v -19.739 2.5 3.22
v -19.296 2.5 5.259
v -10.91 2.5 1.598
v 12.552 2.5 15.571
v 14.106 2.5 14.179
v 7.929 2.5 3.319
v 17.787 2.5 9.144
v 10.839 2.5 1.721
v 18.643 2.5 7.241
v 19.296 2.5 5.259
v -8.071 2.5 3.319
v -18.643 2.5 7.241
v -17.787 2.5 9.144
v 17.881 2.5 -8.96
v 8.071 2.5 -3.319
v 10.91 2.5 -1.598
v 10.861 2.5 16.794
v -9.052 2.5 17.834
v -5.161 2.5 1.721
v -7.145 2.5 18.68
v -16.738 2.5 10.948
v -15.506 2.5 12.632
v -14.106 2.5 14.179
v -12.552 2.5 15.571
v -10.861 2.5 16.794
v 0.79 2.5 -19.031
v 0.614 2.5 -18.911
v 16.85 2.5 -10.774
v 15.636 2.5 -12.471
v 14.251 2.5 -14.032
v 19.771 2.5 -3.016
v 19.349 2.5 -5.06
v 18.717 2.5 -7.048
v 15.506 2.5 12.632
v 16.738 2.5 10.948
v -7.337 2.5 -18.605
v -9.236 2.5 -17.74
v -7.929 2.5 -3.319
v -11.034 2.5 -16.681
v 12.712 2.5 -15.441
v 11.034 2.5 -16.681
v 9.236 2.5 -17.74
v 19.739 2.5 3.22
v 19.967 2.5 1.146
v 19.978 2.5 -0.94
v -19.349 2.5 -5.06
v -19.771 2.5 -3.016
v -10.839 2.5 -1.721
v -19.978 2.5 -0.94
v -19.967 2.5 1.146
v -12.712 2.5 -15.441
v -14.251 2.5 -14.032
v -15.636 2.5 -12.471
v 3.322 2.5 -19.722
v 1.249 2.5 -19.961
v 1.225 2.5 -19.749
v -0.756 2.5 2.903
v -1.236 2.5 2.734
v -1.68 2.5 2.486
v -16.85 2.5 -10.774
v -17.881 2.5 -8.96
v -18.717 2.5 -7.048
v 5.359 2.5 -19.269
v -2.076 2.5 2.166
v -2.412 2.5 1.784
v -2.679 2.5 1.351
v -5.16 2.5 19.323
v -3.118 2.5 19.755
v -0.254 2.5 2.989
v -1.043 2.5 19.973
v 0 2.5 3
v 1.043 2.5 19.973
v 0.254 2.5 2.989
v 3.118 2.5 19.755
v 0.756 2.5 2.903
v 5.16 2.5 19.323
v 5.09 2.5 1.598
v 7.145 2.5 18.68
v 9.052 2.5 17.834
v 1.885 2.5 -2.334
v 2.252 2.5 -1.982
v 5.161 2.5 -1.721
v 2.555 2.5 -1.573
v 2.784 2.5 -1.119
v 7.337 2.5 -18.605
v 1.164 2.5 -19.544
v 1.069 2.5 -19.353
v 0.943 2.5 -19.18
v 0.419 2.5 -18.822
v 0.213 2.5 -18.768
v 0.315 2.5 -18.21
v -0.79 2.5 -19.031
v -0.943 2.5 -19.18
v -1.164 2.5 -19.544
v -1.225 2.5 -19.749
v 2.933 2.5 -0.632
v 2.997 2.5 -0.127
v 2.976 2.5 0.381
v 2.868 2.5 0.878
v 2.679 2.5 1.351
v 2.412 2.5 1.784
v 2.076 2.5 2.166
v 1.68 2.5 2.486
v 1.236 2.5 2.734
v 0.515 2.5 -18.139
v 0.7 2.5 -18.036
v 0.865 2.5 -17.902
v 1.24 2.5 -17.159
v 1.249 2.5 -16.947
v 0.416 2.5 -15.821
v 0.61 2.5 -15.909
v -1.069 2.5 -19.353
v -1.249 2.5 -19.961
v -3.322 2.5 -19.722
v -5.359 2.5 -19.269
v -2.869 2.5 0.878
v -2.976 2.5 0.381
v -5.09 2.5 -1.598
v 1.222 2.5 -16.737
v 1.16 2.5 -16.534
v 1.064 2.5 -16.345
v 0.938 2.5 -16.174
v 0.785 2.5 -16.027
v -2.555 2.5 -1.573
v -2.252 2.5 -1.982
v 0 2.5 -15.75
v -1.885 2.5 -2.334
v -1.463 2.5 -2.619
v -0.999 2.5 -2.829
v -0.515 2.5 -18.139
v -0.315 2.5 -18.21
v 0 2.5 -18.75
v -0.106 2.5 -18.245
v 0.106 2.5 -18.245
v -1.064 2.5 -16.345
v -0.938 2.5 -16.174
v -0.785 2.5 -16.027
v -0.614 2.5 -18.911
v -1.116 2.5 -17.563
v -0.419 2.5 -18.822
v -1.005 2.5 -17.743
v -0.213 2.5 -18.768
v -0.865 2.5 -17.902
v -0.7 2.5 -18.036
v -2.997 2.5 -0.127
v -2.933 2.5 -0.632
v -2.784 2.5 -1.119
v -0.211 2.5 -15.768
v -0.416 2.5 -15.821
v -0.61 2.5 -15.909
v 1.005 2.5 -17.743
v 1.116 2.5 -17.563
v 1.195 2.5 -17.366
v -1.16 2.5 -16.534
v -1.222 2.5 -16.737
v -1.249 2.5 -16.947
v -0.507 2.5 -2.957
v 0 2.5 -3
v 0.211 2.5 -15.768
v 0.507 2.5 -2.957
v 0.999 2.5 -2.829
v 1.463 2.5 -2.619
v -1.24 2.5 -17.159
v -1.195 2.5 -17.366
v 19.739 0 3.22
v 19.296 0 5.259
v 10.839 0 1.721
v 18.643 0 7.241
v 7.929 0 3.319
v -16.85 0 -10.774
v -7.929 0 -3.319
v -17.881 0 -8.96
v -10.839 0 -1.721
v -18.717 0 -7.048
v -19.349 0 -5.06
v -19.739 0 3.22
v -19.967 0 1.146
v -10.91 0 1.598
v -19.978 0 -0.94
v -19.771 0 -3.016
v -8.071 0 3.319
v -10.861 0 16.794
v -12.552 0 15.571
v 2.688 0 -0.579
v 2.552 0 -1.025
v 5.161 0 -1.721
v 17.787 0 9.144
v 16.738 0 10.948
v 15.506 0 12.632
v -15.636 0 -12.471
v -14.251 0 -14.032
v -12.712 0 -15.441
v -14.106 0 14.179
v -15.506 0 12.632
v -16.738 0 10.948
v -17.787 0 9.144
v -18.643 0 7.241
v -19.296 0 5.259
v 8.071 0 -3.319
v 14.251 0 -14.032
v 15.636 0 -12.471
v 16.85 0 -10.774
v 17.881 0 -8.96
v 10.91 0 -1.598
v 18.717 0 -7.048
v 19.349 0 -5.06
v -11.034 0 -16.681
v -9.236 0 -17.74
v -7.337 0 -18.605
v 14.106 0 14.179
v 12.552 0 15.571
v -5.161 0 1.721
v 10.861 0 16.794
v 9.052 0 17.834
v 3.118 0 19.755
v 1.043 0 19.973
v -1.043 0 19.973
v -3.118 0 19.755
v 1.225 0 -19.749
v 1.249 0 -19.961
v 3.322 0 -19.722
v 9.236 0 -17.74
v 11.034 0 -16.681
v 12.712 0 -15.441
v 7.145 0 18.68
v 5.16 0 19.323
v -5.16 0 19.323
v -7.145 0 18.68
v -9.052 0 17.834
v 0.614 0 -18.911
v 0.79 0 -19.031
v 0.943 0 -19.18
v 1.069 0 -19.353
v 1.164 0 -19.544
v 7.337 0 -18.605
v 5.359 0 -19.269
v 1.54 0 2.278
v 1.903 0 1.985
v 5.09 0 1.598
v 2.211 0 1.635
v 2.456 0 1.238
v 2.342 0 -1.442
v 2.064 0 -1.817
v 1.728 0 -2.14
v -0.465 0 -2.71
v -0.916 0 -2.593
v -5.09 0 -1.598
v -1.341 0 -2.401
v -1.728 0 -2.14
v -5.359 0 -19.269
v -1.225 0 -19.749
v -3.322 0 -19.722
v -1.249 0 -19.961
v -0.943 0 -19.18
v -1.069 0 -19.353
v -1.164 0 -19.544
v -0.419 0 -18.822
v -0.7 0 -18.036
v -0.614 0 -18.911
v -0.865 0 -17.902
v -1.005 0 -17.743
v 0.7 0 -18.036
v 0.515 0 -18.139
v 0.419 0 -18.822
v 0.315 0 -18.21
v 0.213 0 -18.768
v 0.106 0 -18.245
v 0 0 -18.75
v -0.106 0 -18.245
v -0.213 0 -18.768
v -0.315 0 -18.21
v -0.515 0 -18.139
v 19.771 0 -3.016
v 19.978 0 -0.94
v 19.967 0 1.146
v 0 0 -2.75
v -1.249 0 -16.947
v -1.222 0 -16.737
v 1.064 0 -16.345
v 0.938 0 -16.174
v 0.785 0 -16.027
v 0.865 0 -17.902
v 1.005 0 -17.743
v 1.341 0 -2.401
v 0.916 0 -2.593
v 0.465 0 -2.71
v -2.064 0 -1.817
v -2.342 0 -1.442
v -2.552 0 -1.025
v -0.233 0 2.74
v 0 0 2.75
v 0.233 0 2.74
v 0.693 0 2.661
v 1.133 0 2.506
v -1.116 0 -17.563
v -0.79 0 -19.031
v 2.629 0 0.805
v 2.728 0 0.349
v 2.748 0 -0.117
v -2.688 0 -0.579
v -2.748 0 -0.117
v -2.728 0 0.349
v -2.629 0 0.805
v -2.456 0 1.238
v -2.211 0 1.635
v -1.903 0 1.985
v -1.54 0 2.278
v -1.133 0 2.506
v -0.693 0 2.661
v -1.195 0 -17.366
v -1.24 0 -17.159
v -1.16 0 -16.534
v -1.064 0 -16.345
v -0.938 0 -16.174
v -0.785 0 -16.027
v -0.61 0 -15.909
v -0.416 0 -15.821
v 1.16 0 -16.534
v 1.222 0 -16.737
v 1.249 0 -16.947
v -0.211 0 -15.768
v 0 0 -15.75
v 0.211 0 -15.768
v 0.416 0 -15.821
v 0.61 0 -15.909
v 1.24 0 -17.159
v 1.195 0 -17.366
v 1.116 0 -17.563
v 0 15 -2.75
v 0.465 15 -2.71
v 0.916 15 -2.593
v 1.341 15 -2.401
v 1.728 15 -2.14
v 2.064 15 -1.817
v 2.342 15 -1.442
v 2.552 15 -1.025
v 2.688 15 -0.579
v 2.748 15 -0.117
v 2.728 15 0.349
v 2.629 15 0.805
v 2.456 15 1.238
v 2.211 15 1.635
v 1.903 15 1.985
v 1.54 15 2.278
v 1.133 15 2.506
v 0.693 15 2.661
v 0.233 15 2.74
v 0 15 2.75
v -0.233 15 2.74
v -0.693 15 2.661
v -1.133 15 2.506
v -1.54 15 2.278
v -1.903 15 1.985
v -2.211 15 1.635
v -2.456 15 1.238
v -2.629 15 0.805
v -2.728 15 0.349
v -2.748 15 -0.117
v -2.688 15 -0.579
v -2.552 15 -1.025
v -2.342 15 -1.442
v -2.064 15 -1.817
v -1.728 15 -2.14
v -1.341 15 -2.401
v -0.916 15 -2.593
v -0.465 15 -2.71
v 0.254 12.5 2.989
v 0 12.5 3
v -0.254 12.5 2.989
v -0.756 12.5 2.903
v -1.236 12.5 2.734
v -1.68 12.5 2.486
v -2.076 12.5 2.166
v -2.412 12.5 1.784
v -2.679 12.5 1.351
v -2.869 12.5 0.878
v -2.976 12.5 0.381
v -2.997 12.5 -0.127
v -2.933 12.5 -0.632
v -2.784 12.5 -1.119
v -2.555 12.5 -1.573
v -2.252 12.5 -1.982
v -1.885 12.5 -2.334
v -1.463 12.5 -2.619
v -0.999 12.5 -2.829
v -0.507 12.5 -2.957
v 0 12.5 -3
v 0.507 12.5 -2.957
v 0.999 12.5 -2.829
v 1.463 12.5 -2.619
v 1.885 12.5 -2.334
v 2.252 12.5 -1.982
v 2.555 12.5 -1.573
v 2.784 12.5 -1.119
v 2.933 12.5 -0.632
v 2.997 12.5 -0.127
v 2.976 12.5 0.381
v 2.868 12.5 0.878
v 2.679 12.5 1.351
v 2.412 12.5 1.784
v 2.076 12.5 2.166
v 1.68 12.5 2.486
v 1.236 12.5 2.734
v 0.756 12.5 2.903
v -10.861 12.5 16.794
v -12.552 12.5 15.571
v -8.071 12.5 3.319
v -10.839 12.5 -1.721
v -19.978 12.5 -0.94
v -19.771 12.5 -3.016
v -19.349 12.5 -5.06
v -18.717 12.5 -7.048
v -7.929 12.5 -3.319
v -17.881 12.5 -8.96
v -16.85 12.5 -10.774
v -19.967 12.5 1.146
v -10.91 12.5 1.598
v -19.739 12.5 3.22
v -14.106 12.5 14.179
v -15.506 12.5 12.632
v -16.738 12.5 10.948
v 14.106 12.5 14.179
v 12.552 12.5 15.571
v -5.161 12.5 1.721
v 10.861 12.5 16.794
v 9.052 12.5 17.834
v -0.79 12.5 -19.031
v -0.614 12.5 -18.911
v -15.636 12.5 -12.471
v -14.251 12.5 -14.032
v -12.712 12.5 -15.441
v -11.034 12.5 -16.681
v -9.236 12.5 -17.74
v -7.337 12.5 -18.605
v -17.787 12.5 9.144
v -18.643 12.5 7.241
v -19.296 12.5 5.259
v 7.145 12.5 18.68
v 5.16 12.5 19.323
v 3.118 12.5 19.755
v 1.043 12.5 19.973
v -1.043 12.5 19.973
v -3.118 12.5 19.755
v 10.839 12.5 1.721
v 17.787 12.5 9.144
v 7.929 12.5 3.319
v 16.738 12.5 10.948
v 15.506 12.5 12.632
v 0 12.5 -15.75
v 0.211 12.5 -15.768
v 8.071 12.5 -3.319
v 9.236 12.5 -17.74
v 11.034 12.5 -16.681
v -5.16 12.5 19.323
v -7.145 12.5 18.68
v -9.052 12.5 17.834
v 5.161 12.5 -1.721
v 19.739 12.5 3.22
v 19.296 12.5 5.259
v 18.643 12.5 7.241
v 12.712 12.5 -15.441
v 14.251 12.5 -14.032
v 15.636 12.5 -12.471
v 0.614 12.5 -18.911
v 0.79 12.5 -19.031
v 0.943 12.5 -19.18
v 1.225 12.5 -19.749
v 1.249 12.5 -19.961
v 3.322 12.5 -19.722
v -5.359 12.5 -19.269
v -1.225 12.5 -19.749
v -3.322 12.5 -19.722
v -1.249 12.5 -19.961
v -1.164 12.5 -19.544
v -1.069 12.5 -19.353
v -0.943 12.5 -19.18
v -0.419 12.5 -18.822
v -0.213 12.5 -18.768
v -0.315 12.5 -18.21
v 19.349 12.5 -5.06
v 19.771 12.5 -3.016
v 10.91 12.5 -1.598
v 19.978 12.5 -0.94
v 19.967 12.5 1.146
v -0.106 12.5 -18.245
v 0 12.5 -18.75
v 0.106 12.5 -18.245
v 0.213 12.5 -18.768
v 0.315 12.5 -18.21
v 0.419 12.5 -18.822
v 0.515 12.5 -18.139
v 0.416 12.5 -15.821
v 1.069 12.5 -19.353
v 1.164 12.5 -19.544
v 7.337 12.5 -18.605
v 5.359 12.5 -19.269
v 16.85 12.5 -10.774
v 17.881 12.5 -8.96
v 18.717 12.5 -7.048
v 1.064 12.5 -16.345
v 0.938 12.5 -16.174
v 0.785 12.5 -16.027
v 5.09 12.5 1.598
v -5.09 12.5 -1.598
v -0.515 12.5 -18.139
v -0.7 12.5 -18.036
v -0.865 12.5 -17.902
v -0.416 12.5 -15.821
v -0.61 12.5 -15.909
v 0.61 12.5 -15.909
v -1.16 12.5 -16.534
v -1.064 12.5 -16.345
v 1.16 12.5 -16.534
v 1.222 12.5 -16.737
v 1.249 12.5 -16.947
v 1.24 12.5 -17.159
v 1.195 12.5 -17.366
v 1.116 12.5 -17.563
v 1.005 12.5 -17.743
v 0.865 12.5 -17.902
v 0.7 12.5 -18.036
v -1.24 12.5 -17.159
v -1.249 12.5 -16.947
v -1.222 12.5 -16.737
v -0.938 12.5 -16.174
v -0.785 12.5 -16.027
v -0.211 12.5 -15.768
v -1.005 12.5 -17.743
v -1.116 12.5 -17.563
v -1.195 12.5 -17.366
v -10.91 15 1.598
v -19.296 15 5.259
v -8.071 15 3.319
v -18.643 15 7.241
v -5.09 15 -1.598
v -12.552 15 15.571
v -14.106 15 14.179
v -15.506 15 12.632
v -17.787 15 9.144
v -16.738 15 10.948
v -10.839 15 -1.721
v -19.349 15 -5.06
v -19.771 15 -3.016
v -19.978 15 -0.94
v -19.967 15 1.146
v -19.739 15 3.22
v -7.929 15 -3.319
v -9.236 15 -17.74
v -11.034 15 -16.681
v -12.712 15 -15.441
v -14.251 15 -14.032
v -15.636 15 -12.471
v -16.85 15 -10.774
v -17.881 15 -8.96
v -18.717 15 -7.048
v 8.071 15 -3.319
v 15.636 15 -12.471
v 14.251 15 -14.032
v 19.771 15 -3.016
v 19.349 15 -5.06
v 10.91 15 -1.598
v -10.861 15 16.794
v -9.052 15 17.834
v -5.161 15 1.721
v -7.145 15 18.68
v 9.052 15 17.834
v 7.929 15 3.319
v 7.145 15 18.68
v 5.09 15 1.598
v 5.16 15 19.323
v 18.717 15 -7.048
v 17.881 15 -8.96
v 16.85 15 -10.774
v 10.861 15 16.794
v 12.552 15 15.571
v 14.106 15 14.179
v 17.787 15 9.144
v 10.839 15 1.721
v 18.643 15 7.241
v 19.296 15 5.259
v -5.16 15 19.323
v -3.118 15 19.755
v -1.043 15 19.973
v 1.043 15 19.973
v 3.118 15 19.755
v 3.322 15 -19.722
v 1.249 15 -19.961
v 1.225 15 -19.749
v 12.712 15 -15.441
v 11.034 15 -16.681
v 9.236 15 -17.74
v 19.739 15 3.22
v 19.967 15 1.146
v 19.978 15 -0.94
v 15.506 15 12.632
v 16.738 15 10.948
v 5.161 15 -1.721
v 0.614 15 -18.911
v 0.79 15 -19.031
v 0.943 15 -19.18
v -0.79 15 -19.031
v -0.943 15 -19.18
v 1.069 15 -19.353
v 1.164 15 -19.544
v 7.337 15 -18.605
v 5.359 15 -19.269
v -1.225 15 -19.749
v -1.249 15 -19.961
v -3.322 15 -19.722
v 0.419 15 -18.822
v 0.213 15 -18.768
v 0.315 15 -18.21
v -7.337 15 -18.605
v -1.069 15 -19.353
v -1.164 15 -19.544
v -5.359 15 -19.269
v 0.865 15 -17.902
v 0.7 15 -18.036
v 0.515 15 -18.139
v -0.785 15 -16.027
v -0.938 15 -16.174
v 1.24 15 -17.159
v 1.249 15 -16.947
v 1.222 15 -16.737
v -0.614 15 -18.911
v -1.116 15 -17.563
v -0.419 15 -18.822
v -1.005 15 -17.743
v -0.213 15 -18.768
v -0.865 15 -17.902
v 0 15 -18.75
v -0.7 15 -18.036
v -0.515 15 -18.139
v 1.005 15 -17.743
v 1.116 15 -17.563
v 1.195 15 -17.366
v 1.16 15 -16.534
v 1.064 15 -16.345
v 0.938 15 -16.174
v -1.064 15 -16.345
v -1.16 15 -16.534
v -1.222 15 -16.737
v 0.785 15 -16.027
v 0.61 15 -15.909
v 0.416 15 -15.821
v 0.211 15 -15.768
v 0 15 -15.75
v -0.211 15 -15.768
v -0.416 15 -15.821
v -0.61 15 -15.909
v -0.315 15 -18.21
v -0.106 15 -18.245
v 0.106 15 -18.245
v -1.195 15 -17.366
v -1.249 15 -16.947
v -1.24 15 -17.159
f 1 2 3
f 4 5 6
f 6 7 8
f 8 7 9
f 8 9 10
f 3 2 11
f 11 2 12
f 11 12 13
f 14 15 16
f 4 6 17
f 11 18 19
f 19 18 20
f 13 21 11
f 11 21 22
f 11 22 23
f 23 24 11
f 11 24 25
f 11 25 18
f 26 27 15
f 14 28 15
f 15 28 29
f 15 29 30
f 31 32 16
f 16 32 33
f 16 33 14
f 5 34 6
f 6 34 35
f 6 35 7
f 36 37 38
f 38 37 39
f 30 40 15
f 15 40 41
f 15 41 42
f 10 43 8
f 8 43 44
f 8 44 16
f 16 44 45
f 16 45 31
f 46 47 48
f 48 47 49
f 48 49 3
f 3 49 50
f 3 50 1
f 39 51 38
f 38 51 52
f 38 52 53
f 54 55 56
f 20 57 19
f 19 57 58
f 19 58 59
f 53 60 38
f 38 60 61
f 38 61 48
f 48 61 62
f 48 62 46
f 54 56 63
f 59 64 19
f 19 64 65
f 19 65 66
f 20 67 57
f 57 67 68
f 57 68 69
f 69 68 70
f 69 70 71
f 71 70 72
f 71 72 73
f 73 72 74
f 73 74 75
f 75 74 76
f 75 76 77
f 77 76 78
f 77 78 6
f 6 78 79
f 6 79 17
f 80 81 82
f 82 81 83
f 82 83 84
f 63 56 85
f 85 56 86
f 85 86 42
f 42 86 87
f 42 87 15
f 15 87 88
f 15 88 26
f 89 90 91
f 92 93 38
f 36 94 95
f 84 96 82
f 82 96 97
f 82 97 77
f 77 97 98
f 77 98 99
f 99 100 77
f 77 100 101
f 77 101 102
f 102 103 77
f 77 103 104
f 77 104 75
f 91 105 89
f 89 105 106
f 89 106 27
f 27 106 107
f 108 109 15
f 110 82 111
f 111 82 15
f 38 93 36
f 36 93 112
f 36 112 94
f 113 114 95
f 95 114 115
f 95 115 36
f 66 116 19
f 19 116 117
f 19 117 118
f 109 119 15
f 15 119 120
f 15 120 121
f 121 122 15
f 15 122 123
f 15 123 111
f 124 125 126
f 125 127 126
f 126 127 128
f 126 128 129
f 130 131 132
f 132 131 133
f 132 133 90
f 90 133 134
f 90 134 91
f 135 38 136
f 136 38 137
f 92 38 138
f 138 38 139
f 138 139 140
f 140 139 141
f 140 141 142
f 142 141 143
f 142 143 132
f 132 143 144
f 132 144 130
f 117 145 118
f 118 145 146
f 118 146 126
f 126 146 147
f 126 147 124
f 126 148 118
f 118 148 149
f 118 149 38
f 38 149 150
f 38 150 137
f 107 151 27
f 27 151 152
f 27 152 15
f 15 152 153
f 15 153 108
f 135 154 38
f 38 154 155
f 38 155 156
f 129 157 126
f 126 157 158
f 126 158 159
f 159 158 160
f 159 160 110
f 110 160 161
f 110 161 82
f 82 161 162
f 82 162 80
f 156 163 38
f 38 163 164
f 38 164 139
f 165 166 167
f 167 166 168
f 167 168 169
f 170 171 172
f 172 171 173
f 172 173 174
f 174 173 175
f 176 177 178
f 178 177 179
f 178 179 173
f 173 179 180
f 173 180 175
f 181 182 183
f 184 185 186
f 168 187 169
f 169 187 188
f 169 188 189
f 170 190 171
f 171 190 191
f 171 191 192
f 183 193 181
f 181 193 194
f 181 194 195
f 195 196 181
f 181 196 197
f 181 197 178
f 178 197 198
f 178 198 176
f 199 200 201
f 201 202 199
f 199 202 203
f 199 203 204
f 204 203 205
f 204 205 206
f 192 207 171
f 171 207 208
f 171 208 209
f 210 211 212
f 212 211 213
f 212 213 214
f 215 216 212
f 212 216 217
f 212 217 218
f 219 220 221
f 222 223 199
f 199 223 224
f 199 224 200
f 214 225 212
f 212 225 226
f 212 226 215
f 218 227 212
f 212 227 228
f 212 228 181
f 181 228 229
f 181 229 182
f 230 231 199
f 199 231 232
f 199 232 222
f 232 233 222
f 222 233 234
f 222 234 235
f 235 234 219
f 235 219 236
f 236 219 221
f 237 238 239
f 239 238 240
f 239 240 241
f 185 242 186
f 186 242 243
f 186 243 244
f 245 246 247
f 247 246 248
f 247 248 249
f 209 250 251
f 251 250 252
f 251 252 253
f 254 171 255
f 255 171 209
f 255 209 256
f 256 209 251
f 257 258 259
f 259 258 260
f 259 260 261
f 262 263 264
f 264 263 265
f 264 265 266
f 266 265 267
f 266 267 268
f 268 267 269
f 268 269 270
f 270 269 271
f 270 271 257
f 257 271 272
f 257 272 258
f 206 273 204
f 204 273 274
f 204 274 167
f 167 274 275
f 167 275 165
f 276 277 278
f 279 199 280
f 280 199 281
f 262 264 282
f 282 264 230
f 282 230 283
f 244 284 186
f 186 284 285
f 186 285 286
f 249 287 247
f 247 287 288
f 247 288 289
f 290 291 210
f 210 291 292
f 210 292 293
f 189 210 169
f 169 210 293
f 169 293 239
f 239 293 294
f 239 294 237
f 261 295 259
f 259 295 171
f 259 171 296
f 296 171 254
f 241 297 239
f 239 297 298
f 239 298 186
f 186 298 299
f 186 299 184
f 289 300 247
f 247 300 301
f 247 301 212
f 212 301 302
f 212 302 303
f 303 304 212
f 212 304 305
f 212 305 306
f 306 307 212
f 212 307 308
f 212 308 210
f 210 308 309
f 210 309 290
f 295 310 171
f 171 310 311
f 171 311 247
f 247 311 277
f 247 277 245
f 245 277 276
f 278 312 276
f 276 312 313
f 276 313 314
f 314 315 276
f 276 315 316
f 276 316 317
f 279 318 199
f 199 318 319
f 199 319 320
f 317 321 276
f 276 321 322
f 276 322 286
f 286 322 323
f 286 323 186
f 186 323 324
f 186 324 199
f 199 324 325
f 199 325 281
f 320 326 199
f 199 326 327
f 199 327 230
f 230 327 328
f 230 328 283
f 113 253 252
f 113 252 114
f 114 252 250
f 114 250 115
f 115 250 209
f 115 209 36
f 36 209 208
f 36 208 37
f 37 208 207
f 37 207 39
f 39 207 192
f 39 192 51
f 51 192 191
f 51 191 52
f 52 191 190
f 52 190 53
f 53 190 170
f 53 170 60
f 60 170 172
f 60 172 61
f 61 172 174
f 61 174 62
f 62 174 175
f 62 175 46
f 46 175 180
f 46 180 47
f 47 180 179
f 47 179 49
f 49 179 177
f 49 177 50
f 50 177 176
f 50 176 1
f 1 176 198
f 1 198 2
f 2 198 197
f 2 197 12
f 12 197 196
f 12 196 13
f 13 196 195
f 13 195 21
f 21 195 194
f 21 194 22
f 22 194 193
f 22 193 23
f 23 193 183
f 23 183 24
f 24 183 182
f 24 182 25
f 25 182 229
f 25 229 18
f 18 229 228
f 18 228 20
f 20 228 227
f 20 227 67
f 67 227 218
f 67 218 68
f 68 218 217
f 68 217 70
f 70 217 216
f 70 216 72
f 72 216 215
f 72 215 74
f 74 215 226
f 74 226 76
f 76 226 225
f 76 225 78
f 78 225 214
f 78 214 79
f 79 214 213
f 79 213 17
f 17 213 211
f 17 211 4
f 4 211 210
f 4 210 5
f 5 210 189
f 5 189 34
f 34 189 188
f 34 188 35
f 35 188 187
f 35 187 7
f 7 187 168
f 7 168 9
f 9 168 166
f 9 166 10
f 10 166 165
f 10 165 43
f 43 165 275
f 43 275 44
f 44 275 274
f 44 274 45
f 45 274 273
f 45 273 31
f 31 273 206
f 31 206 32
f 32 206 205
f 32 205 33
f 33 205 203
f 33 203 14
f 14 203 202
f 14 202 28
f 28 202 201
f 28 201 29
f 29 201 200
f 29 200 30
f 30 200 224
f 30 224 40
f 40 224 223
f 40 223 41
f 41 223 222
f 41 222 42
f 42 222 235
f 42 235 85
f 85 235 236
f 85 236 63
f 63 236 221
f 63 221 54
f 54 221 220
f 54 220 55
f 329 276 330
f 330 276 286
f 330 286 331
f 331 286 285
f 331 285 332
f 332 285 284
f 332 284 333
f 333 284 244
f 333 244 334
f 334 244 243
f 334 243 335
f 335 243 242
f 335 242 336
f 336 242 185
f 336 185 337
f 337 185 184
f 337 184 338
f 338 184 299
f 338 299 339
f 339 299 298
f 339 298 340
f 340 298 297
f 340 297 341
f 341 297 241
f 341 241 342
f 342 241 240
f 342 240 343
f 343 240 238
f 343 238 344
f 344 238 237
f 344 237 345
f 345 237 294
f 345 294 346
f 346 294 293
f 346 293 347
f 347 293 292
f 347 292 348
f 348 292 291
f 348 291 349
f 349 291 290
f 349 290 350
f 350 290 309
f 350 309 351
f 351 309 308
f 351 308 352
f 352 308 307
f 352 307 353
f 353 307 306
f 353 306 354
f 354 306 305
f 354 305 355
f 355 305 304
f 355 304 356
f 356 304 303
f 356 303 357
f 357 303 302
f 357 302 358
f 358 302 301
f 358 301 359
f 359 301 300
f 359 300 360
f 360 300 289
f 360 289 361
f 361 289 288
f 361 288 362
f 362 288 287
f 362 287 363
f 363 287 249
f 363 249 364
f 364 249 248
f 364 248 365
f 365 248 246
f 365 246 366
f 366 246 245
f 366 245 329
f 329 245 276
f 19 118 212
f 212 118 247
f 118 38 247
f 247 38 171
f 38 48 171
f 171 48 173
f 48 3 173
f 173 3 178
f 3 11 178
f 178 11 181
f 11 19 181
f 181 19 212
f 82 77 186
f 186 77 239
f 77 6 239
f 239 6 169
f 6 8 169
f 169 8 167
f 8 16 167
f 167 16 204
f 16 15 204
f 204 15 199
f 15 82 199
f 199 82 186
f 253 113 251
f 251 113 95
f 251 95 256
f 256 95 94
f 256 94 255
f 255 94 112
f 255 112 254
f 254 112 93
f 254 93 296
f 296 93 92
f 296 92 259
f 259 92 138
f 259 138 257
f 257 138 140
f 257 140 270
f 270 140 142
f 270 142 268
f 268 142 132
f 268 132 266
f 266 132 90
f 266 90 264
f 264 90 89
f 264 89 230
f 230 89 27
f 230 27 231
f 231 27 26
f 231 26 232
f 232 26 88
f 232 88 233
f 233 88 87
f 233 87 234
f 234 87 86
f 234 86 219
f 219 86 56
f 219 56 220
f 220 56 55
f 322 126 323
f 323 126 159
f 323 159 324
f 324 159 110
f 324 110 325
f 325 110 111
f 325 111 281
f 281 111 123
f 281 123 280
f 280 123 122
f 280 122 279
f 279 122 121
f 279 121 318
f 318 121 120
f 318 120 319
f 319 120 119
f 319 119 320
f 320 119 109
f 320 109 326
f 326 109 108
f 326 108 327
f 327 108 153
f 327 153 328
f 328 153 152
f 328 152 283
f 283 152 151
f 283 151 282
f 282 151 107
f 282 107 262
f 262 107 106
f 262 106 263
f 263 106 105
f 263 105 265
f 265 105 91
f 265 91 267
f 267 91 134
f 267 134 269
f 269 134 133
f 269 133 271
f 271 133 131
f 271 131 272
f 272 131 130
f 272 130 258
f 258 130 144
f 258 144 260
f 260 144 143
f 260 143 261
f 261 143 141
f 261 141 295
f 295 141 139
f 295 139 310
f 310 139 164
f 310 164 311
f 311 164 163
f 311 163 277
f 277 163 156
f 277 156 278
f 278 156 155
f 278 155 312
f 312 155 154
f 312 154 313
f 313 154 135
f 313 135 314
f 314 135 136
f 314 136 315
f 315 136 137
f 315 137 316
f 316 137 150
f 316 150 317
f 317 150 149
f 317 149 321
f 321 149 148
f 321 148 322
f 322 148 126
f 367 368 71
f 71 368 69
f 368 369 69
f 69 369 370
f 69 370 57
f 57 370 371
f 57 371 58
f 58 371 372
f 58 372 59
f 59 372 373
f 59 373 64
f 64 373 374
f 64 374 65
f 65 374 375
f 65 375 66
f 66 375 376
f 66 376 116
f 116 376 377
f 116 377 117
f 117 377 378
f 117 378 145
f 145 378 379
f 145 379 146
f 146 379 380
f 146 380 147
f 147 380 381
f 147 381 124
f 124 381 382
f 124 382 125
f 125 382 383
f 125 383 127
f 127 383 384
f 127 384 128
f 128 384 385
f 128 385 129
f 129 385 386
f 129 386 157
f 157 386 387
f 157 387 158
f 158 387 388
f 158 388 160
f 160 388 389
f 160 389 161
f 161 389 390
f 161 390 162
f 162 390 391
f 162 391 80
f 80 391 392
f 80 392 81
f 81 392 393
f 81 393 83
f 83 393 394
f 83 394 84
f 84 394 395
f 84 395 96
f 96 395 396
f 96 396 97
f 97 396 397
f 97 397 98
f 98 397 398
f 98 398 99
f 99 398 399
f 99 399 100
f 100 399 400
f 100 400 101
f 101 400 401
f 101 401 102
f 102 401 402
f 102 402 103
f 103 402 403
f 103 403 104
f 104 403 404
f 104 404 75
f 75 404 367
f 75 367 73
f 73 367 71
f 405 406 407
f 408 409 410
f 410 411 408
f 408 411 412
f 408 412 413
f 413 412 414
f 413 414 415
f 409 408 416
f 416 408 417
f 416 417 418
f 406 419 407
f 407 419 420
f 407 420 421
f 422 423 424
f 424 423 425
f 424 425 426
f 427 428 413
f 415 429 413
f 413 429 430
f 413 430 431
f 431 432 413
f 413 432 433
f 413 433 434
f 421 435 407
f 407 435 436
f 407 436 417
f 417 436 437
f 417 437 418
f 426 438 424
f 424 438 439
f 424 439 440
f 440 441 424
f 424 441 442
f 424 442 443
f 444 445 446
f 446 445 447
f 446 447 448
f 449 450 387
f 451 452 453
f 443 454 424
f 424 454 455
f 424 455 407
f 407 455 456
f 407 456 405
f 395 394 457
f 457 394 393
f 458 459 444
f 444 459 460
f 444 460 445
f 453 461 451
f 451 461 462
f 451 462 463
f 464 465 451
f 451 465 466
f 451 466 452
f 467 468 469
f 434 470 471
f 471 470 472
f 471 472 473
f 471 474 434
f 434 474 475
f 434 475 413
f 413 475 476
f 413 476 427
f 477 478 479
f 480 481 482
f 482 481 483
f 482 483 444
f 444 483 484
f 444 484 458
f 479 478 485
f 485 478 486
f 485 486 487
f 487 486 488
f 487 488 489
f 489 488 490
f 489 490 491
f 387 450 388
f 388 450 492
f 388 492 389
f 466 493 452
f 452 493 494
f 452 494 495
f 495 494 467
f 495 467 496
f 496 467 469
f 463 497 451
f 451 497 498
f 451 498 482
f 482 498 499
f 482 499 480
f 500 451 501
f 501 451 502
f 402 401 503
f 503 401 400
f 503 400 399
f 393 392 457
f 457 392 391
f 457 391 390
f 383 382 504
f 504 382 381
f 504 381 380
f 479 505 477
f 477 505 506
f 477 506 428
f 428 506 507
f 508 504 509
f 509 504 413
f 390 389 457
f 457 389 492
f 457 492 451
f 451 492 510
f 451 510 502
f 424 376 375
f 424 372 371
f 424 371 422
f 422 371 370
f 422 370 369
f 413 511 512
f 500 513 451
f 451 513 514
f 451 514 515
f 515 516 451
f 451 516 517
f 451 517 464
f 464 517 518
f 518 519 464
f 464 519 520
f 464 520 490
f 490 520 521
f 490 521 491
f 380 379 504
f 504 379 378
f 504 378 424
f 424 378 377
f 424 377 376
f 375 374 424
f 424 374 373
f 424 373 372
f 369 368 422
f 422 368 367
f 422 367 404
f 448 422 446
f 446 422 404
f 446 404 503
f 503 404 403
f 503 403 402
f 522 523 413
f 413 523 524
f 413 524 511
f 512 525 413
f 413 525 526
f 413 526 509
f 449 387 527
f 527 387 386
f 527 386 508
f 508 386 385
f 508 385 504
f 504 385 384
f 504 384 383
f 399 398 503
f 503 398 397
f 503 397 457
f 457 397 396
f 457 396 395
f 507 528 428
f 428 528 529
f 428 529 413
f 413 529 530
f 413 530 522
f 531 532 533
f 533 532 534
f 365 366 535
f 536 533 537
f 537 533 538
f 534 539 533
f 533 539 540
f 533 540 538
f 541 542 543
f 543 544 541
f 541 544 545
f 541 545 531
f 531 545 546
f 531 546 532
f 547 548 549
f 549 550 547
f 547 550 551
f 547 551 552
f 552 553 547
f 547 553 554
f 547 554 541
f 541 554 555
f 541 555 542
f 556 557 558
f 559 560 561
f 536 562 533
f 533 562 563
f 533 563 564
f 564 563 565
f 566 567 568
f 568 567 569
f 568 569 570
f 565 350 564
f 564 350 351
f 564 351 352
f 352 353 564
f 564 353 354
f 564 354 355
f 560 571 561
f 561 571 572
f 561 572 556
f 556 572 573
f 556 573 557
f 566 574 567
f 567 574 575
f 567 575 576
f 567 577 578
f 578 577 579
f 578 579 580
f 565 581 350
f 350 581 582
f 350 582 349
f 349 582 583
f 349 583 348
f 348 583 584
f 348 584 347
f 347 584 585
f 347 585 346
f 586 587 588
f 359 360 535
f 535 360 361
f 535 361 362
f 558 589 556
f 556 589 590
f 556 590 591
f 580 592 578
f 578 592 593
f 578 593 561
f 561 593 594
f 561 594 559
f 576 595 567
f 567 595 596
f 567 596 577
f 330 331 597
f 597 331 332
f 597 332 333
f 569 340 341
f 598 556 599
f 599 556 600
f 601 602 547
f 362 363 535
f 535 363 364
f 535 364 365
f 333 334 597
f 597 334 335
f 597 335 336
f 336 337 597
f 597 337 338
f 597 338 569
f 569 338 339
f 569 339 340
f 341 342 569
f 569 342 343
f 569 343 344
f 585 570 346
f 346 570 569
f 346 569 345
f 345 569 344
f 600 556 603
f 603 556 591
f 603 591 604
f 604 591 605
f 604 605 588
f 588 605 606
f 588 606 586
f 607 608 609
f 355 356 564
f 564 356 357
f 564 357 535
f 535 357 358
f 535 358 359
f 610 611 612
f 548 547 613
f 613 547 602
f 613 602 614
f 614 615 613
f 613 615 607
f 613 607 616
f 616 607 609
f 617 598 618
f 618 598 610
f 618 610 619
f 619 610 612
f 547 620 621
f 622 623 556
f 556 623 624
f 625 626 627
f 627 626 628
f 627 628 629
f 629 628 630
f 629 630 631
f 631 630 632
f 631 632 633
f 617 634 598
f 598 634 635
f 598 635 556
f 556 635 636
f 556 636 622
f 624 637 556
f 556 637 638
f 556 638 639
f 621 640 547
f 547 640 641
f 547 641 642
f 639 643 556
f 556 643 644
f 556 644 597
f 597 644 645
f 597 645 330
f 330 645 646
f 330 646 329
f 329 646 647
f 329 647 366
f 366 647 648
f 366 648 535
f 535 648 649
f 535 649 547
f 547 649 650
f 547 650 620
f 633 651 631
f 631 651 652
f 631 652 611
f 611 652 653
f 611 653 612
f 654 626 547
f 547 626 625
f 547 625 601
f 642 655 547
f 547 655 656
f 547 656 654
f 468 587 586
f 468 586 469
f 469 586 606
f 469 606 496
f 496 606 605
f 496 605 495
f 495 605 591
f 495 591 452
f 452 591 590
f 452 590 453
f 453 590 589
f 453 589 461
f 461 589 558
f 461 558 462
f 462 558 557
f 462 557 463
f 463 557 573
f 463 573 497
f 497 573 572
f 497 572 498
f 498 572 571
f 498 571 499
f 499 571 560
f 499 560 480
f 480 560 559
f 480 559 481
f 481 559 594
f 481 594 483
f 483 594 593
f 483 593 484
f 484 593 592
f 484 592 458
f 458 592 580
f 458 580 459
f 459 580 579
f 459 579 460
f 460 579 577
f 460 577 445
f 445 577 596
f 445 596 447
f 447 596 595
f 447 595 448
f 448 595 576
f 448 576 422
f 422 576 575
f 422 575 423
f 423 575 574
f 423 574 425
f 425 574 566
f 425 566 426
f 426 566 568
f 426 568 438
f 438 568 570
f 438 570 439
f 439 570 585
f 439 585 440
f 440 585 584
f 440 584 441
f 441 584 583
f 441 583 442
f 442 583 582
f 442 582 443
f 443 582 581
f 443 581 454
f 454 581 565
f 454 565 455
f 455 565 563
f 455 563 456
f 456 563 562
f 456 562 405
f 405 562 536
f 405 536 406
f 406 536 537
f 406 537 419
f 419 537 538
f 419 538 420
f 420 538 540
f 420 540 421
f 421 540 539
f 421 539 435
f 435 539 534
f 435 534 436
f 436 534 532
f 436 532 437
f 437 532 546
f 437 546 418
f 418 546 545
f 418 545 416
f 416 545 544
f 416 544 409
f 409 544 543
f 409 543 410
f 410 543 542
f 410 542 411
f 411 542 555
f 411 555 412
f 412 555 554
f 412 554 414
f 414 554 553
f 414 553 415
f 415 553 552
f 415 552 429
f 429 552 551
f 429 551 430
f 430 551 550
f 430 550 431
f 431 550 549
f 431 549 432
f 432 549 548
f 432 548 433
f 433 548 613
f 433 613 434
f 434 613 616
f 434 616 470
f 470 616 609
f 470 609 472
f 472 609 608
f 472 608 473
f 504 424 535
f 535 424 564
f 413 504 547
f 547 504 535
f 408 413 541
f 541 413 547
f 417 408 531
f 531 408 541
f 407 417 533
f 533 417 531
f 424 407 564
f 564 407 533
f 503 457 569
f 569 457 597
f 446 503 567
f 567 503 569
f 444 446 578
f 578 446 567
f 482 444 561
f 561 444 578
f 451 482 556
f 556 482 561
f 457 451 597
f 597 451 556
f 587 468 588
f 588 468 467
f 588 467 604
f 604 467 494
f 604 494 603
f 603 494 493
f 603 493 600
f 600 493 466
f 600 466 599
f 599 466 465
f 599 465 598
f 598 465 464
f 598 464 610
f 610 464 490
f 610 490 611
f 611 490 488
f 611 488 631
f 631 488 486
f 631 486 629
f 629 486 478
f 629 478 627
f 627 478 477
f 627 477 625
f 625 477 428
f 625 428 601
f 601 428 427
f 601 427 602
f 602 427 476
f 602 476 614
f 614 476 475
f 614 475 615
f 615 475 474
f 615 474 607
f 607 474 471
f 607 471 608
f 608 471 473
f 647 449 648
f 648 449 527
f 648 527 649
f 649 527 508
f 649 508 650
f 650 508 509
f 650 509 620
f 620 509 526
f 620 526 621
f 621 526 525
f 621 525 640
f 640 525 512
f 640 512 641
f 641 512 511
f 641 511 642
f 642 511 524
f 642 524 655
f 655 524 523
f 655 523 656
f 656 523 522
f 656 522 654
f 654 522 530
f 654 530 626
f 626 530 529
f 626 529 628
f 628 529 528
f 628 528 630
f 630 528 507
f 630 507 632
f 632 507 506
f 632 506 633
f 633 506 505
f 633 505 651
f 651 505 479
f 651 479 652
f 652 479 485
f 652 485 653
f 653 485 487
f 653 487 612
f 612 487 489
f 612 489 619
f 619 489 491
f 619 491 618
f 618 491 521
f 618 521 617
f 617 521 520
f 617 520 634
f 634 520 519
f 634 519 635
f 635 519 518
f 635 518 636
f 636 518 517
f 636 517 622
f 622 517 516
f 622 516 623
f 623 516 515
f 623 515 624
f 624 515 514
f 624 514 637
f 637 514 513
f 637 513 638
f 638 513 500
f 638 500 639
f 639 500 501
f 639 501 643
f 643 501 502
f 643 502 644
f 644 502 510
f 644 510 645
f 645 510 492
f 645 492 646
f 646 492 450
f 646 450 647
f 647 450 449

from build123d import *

# Parameters (mm, degrees)
SKETCH1_R           = 20
SKETCH1_R_2         = 2.75
BOSS_EXTRUDE1_DEPTH = 2.5
CUT_EXTRUDE3_DEPTH  = 2.5
SKETCH4_R           = 1.25
CUT_EXTRUDE4_DEPTH  = 5
SKETCH2_R           = 3
SKETCH2_R_2         = 2.75
BOSS_EXTRUDE2_DEPTH = 5


with BuildPart() as part:
    # Sketch1 → Boss-Extrude1 (new body)
    with BuildSketch(Plane(origin=(0, 0, 0), x_dir=(1, 0, 0), z_dir=(0, 1, 0))):
        Circle(SKETCH1_R)
        Circle(SKETCH1_R_2, mode=Mode.SUBTRACT)
    extrude(amount=BOSS_EXTRUDE1_DEPTH)

    # Sketch3 → Cut-Extrude3 (cut)
    with BuildSketch(Plane.XZ):
        Polygon((-5.161329605, 1.721273866), (-8.071331697, 3.318997608), (-10.910002092, 1.597723742), (-10.838670395, -1.721273866), (-7.928668303, -3.318997608), (-5.089997908, -1.597723742), align=None)
        Polygon((5.161329605, -1.721273866), (8.071331697, -3.318997608), (10.910002092, -1.597723742), (10.838670395, 1.721273866), (7.928668303, 3.318997608), (5.089997908, 1.597723742), align=None)
    extrude(amount=-CUT_EXTRUDE3_DEPTH, mode=Mode.SUBTRACT)

    # Sketch4 → Cut-Extrude4 (cut)
    with BuildSketch(Plane(origin=(0, 2.5, 0), x_dir=(1, 0, 0), z_dir=(0, 1, 0))):
        with Locations((0, 17)):
            Circle(SKETCH4_R)
        with Locations((0, 20)):
            Circle(SKETCH4_R)
    extrude(amount=-CUT_EXTRUDE4_DEPTH, mode=Mode.SUBTRACT)

    # Sketch2 → Boss-Extrude2 (add)
    with BuildSketch(Plane(origin=(0, 2.5, 0), x_dir=(1, 0, 0), z_dir=(0, 1, 0))):
        Circle(SKETCH2_R)
        Circle(SKETCH2_R_2, mode=Mode.SUBTRACT)
    extrude(amount=BOSS_EXTRUDE2_DEPTH)

    # Mirror7: part across plane


with BuildPart() as part_1:
    add(part.part)
    add(part.part.mirror(Plane.ZX.offset(7.5)))


solid = part_1.part
